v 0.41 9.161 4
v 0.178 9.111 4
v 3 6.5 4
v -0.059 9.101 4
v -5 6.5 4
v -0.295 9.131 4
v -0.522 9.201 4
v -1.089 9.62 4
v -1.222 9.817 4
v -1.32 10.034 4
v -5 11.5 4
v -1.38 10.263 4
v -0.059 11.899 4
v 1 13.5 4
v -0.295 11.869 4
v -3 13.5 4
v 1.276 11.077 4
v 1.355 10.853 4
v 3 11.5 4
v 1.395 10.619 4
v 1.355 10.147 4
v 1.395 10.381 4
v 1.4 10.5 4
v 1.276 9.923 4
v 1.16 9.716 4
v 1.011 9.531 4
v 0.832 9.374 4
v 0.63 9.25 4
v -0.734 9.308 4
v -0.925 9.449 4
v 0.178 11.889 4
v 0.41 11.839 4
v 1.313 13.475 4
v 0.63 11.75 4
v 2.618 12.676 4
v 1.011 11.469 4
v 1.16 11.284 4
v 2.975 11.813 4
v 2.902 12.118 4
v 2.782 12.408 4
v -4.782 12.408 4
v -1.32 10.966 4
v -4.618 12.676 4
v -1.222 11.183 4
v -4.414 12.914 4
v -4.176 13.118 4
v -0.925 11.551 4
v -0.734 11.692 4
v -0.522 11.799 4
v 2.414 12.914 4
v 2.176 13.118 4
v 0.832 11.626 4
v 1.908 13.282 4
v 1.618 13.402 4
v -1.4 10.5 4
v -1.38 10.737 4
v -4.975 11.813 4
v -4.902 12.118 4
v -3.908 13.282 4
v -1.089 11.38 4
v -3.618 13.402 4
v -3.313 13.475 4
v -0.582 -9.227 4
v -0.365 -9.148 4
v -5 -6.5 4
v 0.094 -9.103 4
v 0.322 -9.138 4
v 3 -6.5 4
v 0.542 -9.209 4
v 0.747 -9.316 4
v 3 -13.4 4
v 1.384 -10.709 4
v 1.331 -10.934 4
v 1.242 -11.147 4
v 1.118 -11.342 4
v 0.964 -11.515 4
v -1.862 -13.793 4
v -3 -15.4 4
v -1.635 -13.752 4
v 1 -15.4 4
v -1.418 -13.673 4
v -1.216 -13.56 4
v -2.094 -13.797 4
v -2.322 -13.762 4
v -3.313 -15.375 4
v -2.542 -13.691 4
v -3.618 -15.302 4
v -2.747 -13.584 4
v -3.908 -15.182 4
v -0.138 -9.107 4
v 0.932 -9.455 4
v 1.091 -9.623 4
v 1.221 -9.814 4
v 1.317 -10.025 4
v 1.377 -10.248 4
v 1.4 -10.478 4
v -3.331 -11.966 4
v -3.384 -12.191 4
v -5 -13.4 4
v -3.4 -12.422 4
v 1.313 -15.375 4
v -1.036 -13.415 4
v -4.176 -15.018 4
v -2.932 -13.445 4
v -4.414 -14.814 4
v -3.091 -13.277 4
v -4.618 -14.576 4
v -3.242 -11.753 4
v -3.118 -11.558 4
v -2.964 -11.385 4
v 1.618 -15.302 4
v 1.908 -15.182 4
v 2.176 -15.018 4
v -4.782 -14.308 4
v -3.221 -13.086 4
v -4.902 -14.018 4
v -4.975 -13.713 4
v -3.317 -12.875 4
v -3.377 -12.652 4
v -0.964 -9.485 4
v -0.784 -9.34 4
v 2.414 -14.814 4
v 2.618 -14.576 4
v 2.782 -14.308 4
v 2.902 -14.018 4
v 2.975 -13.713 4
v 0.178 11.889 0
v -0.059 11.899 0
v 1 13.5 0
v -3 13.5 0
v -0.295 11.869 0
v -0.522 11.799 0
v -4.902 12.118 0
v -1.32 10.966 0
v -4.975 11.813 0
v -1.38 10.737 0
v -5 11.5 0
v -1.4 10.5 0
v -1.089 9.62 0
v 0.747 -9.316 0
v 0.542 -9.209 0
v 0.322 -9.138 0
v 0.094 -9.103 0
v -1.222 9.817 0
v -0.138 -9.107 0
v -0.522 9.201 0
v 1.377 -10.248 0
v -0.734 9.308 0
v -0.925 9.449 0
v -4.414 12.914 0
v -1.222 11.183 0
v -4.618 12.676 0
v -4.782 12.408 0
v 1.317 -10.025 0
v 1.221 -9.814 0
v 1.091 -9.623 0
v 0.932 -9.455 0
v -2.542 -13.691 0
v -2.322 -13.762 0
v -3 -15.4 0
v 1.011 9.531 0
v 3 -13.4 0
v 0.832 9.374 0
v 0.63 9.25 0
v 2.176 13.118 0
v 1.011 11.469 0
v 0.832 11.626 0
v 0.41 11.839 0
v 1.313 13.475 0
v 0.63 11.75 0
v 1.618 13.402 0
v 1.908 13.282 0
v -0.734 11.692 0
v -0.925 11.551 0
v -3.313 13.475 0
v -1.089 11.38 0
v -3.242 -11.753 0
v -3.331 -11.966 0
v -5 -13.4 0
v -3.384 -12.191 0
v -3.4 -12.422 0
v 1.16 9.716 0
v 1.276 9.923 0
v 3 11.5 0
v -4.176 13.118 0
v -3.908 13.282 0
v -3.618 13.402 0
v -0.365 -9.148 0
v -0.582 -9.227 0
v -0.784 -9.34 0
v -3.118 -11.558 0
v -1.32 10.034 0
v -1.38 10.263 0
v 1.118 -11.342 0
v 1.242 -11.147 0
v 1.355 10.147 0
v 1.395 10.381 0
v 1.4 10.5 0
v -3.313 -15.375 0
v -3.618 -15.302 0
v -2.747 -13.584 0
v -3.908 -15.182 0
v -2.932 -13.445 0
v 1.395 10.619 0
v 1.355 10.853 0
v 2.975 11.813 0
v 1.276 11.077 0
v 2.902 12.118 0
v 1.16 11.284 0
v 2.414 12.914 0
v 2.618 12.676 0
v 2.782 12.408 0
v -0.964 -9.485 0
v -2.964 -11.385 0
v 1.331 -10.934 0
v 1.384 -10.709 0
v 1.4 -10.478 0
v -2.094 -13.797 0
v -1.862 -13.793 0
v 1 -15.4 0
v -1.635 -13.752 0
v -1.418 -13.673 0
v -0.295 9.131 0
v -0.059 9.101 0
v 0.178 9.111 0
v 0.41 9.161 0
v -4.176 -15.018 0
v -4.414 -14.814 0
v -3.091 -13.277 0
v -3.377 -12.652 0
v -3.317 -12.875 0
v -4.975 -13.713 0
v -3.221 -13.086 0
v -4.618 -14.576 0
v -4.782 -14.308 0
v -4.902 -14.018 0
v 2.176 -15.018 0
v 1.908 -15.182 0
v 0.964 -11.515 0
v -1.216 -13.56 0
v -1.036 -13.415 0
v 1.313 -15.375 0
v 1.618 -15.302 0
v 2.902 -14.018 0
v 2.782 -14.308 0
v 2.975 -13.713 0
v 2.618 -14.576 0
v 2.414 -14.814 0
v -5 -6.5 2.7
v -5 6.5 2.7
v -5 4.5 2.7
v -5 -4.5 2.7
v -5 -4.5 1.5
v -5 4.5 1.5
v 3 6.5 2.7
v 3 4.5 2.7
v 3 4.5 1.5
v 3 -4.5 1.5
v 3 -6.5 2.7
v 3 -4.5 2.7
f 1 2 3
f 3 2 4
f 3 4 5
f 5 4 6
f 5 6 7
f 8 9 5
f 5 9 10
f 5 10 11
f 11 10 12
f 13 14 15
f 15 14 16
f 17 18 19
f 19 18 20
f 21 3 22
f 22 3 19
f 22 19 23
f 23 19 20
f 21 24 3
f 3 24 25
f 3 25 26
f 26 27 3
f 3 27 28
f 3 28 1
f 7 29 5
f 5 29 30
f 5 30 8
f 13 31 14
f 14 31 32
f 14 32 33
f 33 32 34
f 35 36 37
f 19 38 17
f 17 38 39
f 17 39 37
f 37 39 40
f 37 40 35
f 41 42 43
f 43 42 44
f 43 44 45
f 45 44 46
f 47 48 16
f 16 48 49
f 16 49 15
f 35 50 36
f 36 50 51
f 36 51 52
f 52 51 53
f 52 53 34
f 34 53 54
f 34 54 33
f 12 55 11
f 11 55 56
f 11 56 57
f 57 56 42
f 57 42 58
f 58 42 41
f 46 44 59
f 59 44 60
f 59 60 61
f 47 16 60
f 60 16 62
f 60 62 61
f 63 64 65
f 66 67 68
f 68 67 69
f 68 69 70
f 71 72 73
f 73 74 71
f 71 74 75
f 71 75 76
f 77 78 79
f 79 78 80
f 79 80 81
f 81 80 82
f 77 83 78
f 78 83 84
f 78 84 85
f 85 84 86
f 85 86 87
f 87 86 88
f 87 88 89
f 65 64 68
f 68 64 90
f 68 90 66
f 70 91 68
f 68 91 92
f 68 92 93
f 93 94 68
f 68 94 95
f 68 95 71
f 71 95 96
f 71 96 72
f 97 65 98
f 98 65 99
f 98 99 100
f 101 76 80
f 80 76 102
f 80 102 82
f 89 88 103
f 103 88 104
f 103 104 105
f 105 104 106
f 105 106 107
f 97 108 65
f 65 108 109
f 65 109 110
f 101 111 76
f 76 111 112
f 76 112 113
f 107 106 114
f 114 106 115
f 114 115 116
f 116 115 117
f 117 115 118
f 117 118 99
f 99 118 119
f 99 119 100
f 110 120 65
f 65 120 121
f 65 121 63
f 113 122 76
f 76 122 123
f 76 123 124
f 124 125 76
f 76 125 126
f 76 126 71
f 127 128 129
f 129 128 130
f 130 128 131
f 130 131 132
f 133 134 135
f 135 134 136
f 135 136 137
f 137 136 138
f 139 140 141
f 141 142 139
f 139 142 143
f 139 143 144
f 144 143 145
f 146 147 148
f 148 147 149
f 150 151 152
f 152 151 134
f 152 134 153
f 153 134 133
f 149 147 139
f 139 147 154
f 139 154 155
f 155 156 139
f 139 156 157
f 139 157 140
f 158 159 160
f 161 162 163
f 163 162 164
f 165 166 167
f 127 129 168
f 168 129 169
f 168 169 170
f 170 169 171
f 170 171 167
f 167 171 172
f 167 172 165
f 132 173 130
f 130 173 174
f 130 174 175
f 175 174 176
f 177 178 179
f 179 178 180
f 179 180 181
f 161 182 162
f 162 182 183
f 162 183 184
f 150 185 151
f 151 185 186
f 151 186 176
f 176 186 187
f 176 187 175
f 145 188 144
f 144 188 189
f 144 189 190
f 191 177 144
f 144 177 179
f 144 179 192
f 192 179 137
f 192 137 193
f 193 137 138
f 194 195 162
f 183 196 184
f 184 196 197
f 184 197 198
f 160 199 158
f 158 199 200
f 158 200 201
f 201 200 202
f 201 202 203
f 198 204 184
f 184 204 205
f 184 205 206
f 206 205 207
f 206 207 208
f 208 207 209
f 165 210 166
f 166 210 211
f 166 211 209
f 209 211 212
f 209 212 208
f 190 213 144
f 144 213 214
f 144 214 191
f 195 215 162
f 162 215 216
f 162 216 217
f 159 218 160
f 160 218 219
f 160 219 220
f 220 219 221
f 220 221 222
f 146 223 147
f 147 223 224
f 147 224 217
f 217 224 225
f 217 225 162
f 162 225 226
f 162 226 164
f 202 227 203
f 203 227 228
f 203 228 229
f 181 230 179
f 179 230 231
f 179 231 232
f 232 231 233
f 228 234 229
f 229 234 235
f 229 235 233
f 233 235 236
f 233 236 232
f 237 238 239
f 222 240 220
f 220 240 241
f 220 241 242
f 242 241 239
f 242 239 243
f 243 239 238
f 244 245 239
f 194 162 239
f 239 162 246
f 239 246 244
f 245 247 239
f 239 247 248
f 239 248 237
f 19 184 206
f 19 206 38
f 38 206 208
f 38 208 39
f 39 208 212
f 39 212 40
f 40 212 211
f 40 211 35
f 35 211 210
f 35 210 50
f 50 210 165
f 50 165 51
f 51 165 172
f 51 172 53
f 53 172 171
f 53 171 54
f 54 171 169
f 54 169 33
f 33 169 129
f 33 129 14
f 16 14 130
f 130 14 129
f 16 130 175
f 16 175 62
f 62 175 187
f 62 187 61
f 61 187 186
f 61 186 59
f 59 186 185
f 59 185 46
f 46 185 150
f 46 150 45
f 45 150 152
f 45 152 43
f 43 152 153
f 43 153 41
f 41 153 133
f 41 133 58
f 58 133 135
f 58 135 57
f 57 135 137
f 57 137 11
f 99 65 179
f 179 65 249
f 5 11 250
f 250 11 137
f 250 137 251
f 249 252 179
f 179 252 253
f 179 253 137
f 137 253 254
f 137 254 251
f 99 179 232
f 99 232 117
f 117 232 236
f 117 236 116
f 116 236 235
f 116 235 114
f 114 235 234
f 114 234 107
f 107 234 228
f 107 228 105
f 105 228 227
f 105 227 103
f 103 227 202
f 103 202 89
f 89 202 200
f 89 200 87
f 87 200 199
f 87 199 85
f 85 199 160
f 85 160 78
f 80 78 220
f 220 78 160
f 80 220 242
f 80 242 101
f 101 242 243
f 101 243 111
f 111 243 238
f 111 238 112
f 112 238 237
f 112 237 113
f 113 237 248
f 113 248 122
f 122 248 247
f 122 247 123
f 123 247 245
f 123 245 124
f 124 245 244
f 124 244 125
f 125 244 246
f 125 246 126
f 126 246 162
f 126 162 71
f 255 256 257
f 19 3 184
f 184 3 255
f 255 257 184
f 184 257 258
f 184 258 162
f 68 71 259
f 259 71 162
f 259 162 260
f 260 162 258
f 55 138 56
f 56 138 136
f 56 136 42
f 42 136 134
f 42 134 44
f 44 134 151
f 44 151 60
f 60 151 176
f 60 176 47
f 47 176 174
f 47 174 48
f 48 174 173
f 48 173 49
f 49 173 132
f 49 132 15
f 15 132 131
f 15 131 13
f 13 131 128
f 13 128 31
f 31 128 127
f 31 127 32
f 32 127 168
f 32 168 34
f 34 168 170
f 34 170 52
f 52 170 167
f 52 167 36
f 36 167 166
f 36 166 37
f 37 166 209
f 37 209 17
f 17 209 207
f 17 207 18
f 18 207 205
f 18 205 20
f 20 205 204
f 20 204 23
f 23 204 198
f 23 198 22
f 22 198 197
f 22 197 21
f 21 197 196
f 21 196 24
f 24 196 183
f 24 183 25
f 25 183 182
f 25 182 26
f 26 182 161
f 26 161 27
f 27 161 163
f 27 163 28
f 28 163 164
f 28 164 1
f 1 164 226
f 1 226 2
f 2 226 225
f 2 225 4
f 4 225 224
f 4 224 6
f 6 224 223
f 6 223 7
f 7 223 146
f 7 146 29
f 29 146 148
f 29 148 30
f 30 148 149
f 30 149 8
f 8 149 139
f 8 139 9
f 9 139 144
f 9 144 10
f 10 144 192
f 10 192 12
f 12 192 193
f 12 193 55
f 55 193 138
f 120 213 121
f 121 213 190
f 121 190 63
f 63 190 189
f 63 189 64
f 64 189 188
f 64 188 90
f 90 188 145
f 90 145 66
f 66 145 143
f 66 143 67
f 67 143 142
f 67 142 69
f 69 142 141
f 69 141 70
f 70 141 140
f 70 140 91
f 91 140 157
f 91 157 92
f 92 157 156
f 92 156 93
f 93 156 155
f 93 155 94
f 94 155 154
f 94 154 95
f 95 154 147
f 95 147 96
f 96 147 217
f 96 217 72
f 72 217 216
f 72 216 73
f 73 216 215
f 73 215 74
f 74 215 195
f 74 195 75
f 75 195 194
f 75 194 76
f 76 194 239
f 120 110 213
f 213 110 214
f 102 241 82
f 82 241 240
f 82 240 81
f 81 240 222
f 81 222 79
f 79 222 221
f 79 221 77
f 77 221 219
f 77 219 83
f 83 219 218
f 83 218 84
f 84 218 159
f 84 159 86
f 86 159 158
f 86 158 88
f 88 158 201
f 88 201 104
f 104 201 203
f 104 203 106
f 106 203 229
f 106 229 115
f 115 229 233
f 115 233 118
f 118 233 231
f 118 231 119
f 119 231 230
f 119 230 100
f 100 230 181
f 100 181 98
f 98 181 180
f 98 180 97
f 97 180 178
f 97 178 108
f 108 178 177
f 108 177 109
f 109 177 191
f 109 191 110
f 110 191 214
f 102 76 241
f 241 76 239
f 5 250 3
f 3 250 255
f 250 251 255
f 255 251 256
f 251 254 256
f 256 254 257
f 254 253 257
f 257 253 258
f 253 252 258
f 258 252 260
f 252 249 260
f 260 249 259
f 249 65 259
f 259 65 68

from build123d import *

# Parameters (mm, degrees)
SKETCH1_R           = 1.4
BOSS_EXTRUDE1_DEPTH = 4
CUT_EXTRUDE1_DEPTH  = 9


with BuildPart() as part:
    # Sketch1 → Boss-Extrude1 (new body)
    with BuildSketch(Plane.XY):
        with BuildLine():
            Line((-5, 11.5), (-5, -13.4))
            ThreePointArc((-5, -13.4), (-4.414213562, -14.814213562), (-3, -15.4))
            Line((-3, -15.4), (1, -15.4))
            ThreePointArc((1, -15.4), (2.414213562, -14.814213562), (3, -13.4))
            Line((3, -13.4), (3, 11.5))
            ThreePointArc((3, 11.5), (2.414213562, 12.914213562), (1, 13.5))
            Line((1, 13.5), (-3, 13.5))
            ThreePointArc((-3, 13.5), (-4.414213562, 12.914213562), (-5, 11.5))
        make_face()
        with Locations((0, 10.5)):
            Circle(SKETCH1_R, mode=Mode.SUBTRACT)
        with BuildLine():
            Line((0.964249247, -11.514999207), (-1.035750753, -13.414999207))
            ThreePointArc((-1.035750753, -13.414999207), (-3.014999207, -13.364249247), (-2.964249247, -11.385000793))
            Line((-2.964249247, -11.385000793), (-0.964249247, -9.485000793))
            ThreePointArc((-0.964249247, -9.485000793), (1.014999207, -9.535750753), (0.964249247, -11.514999207))
        make_face(mode=Mode.SUBTRACT)
    extrude(amount=BOSS_EXTRUDE1_DEPTH)

    # Sketch2 → Cut-Extrude1 (cut, through all)
    with BuildSketch(Plane(origin=(3, 0, 0), x_dir=(0, 0, -1), z_dir=(1, 0, 0))):
        Polygon((-4, 6.5), (-2.7, 6.5), (-2.7, 4.5), (-1.5, 4.5), (-1.5, -4.5), (-2.7, -4.5), (-2.7, -6.5), (-4, -6.5), align=None)
    extrude(amount=-CUT_EXTRUDE1_DEPTH, mode=Mode.SUBTRACT)


solid = part.part
